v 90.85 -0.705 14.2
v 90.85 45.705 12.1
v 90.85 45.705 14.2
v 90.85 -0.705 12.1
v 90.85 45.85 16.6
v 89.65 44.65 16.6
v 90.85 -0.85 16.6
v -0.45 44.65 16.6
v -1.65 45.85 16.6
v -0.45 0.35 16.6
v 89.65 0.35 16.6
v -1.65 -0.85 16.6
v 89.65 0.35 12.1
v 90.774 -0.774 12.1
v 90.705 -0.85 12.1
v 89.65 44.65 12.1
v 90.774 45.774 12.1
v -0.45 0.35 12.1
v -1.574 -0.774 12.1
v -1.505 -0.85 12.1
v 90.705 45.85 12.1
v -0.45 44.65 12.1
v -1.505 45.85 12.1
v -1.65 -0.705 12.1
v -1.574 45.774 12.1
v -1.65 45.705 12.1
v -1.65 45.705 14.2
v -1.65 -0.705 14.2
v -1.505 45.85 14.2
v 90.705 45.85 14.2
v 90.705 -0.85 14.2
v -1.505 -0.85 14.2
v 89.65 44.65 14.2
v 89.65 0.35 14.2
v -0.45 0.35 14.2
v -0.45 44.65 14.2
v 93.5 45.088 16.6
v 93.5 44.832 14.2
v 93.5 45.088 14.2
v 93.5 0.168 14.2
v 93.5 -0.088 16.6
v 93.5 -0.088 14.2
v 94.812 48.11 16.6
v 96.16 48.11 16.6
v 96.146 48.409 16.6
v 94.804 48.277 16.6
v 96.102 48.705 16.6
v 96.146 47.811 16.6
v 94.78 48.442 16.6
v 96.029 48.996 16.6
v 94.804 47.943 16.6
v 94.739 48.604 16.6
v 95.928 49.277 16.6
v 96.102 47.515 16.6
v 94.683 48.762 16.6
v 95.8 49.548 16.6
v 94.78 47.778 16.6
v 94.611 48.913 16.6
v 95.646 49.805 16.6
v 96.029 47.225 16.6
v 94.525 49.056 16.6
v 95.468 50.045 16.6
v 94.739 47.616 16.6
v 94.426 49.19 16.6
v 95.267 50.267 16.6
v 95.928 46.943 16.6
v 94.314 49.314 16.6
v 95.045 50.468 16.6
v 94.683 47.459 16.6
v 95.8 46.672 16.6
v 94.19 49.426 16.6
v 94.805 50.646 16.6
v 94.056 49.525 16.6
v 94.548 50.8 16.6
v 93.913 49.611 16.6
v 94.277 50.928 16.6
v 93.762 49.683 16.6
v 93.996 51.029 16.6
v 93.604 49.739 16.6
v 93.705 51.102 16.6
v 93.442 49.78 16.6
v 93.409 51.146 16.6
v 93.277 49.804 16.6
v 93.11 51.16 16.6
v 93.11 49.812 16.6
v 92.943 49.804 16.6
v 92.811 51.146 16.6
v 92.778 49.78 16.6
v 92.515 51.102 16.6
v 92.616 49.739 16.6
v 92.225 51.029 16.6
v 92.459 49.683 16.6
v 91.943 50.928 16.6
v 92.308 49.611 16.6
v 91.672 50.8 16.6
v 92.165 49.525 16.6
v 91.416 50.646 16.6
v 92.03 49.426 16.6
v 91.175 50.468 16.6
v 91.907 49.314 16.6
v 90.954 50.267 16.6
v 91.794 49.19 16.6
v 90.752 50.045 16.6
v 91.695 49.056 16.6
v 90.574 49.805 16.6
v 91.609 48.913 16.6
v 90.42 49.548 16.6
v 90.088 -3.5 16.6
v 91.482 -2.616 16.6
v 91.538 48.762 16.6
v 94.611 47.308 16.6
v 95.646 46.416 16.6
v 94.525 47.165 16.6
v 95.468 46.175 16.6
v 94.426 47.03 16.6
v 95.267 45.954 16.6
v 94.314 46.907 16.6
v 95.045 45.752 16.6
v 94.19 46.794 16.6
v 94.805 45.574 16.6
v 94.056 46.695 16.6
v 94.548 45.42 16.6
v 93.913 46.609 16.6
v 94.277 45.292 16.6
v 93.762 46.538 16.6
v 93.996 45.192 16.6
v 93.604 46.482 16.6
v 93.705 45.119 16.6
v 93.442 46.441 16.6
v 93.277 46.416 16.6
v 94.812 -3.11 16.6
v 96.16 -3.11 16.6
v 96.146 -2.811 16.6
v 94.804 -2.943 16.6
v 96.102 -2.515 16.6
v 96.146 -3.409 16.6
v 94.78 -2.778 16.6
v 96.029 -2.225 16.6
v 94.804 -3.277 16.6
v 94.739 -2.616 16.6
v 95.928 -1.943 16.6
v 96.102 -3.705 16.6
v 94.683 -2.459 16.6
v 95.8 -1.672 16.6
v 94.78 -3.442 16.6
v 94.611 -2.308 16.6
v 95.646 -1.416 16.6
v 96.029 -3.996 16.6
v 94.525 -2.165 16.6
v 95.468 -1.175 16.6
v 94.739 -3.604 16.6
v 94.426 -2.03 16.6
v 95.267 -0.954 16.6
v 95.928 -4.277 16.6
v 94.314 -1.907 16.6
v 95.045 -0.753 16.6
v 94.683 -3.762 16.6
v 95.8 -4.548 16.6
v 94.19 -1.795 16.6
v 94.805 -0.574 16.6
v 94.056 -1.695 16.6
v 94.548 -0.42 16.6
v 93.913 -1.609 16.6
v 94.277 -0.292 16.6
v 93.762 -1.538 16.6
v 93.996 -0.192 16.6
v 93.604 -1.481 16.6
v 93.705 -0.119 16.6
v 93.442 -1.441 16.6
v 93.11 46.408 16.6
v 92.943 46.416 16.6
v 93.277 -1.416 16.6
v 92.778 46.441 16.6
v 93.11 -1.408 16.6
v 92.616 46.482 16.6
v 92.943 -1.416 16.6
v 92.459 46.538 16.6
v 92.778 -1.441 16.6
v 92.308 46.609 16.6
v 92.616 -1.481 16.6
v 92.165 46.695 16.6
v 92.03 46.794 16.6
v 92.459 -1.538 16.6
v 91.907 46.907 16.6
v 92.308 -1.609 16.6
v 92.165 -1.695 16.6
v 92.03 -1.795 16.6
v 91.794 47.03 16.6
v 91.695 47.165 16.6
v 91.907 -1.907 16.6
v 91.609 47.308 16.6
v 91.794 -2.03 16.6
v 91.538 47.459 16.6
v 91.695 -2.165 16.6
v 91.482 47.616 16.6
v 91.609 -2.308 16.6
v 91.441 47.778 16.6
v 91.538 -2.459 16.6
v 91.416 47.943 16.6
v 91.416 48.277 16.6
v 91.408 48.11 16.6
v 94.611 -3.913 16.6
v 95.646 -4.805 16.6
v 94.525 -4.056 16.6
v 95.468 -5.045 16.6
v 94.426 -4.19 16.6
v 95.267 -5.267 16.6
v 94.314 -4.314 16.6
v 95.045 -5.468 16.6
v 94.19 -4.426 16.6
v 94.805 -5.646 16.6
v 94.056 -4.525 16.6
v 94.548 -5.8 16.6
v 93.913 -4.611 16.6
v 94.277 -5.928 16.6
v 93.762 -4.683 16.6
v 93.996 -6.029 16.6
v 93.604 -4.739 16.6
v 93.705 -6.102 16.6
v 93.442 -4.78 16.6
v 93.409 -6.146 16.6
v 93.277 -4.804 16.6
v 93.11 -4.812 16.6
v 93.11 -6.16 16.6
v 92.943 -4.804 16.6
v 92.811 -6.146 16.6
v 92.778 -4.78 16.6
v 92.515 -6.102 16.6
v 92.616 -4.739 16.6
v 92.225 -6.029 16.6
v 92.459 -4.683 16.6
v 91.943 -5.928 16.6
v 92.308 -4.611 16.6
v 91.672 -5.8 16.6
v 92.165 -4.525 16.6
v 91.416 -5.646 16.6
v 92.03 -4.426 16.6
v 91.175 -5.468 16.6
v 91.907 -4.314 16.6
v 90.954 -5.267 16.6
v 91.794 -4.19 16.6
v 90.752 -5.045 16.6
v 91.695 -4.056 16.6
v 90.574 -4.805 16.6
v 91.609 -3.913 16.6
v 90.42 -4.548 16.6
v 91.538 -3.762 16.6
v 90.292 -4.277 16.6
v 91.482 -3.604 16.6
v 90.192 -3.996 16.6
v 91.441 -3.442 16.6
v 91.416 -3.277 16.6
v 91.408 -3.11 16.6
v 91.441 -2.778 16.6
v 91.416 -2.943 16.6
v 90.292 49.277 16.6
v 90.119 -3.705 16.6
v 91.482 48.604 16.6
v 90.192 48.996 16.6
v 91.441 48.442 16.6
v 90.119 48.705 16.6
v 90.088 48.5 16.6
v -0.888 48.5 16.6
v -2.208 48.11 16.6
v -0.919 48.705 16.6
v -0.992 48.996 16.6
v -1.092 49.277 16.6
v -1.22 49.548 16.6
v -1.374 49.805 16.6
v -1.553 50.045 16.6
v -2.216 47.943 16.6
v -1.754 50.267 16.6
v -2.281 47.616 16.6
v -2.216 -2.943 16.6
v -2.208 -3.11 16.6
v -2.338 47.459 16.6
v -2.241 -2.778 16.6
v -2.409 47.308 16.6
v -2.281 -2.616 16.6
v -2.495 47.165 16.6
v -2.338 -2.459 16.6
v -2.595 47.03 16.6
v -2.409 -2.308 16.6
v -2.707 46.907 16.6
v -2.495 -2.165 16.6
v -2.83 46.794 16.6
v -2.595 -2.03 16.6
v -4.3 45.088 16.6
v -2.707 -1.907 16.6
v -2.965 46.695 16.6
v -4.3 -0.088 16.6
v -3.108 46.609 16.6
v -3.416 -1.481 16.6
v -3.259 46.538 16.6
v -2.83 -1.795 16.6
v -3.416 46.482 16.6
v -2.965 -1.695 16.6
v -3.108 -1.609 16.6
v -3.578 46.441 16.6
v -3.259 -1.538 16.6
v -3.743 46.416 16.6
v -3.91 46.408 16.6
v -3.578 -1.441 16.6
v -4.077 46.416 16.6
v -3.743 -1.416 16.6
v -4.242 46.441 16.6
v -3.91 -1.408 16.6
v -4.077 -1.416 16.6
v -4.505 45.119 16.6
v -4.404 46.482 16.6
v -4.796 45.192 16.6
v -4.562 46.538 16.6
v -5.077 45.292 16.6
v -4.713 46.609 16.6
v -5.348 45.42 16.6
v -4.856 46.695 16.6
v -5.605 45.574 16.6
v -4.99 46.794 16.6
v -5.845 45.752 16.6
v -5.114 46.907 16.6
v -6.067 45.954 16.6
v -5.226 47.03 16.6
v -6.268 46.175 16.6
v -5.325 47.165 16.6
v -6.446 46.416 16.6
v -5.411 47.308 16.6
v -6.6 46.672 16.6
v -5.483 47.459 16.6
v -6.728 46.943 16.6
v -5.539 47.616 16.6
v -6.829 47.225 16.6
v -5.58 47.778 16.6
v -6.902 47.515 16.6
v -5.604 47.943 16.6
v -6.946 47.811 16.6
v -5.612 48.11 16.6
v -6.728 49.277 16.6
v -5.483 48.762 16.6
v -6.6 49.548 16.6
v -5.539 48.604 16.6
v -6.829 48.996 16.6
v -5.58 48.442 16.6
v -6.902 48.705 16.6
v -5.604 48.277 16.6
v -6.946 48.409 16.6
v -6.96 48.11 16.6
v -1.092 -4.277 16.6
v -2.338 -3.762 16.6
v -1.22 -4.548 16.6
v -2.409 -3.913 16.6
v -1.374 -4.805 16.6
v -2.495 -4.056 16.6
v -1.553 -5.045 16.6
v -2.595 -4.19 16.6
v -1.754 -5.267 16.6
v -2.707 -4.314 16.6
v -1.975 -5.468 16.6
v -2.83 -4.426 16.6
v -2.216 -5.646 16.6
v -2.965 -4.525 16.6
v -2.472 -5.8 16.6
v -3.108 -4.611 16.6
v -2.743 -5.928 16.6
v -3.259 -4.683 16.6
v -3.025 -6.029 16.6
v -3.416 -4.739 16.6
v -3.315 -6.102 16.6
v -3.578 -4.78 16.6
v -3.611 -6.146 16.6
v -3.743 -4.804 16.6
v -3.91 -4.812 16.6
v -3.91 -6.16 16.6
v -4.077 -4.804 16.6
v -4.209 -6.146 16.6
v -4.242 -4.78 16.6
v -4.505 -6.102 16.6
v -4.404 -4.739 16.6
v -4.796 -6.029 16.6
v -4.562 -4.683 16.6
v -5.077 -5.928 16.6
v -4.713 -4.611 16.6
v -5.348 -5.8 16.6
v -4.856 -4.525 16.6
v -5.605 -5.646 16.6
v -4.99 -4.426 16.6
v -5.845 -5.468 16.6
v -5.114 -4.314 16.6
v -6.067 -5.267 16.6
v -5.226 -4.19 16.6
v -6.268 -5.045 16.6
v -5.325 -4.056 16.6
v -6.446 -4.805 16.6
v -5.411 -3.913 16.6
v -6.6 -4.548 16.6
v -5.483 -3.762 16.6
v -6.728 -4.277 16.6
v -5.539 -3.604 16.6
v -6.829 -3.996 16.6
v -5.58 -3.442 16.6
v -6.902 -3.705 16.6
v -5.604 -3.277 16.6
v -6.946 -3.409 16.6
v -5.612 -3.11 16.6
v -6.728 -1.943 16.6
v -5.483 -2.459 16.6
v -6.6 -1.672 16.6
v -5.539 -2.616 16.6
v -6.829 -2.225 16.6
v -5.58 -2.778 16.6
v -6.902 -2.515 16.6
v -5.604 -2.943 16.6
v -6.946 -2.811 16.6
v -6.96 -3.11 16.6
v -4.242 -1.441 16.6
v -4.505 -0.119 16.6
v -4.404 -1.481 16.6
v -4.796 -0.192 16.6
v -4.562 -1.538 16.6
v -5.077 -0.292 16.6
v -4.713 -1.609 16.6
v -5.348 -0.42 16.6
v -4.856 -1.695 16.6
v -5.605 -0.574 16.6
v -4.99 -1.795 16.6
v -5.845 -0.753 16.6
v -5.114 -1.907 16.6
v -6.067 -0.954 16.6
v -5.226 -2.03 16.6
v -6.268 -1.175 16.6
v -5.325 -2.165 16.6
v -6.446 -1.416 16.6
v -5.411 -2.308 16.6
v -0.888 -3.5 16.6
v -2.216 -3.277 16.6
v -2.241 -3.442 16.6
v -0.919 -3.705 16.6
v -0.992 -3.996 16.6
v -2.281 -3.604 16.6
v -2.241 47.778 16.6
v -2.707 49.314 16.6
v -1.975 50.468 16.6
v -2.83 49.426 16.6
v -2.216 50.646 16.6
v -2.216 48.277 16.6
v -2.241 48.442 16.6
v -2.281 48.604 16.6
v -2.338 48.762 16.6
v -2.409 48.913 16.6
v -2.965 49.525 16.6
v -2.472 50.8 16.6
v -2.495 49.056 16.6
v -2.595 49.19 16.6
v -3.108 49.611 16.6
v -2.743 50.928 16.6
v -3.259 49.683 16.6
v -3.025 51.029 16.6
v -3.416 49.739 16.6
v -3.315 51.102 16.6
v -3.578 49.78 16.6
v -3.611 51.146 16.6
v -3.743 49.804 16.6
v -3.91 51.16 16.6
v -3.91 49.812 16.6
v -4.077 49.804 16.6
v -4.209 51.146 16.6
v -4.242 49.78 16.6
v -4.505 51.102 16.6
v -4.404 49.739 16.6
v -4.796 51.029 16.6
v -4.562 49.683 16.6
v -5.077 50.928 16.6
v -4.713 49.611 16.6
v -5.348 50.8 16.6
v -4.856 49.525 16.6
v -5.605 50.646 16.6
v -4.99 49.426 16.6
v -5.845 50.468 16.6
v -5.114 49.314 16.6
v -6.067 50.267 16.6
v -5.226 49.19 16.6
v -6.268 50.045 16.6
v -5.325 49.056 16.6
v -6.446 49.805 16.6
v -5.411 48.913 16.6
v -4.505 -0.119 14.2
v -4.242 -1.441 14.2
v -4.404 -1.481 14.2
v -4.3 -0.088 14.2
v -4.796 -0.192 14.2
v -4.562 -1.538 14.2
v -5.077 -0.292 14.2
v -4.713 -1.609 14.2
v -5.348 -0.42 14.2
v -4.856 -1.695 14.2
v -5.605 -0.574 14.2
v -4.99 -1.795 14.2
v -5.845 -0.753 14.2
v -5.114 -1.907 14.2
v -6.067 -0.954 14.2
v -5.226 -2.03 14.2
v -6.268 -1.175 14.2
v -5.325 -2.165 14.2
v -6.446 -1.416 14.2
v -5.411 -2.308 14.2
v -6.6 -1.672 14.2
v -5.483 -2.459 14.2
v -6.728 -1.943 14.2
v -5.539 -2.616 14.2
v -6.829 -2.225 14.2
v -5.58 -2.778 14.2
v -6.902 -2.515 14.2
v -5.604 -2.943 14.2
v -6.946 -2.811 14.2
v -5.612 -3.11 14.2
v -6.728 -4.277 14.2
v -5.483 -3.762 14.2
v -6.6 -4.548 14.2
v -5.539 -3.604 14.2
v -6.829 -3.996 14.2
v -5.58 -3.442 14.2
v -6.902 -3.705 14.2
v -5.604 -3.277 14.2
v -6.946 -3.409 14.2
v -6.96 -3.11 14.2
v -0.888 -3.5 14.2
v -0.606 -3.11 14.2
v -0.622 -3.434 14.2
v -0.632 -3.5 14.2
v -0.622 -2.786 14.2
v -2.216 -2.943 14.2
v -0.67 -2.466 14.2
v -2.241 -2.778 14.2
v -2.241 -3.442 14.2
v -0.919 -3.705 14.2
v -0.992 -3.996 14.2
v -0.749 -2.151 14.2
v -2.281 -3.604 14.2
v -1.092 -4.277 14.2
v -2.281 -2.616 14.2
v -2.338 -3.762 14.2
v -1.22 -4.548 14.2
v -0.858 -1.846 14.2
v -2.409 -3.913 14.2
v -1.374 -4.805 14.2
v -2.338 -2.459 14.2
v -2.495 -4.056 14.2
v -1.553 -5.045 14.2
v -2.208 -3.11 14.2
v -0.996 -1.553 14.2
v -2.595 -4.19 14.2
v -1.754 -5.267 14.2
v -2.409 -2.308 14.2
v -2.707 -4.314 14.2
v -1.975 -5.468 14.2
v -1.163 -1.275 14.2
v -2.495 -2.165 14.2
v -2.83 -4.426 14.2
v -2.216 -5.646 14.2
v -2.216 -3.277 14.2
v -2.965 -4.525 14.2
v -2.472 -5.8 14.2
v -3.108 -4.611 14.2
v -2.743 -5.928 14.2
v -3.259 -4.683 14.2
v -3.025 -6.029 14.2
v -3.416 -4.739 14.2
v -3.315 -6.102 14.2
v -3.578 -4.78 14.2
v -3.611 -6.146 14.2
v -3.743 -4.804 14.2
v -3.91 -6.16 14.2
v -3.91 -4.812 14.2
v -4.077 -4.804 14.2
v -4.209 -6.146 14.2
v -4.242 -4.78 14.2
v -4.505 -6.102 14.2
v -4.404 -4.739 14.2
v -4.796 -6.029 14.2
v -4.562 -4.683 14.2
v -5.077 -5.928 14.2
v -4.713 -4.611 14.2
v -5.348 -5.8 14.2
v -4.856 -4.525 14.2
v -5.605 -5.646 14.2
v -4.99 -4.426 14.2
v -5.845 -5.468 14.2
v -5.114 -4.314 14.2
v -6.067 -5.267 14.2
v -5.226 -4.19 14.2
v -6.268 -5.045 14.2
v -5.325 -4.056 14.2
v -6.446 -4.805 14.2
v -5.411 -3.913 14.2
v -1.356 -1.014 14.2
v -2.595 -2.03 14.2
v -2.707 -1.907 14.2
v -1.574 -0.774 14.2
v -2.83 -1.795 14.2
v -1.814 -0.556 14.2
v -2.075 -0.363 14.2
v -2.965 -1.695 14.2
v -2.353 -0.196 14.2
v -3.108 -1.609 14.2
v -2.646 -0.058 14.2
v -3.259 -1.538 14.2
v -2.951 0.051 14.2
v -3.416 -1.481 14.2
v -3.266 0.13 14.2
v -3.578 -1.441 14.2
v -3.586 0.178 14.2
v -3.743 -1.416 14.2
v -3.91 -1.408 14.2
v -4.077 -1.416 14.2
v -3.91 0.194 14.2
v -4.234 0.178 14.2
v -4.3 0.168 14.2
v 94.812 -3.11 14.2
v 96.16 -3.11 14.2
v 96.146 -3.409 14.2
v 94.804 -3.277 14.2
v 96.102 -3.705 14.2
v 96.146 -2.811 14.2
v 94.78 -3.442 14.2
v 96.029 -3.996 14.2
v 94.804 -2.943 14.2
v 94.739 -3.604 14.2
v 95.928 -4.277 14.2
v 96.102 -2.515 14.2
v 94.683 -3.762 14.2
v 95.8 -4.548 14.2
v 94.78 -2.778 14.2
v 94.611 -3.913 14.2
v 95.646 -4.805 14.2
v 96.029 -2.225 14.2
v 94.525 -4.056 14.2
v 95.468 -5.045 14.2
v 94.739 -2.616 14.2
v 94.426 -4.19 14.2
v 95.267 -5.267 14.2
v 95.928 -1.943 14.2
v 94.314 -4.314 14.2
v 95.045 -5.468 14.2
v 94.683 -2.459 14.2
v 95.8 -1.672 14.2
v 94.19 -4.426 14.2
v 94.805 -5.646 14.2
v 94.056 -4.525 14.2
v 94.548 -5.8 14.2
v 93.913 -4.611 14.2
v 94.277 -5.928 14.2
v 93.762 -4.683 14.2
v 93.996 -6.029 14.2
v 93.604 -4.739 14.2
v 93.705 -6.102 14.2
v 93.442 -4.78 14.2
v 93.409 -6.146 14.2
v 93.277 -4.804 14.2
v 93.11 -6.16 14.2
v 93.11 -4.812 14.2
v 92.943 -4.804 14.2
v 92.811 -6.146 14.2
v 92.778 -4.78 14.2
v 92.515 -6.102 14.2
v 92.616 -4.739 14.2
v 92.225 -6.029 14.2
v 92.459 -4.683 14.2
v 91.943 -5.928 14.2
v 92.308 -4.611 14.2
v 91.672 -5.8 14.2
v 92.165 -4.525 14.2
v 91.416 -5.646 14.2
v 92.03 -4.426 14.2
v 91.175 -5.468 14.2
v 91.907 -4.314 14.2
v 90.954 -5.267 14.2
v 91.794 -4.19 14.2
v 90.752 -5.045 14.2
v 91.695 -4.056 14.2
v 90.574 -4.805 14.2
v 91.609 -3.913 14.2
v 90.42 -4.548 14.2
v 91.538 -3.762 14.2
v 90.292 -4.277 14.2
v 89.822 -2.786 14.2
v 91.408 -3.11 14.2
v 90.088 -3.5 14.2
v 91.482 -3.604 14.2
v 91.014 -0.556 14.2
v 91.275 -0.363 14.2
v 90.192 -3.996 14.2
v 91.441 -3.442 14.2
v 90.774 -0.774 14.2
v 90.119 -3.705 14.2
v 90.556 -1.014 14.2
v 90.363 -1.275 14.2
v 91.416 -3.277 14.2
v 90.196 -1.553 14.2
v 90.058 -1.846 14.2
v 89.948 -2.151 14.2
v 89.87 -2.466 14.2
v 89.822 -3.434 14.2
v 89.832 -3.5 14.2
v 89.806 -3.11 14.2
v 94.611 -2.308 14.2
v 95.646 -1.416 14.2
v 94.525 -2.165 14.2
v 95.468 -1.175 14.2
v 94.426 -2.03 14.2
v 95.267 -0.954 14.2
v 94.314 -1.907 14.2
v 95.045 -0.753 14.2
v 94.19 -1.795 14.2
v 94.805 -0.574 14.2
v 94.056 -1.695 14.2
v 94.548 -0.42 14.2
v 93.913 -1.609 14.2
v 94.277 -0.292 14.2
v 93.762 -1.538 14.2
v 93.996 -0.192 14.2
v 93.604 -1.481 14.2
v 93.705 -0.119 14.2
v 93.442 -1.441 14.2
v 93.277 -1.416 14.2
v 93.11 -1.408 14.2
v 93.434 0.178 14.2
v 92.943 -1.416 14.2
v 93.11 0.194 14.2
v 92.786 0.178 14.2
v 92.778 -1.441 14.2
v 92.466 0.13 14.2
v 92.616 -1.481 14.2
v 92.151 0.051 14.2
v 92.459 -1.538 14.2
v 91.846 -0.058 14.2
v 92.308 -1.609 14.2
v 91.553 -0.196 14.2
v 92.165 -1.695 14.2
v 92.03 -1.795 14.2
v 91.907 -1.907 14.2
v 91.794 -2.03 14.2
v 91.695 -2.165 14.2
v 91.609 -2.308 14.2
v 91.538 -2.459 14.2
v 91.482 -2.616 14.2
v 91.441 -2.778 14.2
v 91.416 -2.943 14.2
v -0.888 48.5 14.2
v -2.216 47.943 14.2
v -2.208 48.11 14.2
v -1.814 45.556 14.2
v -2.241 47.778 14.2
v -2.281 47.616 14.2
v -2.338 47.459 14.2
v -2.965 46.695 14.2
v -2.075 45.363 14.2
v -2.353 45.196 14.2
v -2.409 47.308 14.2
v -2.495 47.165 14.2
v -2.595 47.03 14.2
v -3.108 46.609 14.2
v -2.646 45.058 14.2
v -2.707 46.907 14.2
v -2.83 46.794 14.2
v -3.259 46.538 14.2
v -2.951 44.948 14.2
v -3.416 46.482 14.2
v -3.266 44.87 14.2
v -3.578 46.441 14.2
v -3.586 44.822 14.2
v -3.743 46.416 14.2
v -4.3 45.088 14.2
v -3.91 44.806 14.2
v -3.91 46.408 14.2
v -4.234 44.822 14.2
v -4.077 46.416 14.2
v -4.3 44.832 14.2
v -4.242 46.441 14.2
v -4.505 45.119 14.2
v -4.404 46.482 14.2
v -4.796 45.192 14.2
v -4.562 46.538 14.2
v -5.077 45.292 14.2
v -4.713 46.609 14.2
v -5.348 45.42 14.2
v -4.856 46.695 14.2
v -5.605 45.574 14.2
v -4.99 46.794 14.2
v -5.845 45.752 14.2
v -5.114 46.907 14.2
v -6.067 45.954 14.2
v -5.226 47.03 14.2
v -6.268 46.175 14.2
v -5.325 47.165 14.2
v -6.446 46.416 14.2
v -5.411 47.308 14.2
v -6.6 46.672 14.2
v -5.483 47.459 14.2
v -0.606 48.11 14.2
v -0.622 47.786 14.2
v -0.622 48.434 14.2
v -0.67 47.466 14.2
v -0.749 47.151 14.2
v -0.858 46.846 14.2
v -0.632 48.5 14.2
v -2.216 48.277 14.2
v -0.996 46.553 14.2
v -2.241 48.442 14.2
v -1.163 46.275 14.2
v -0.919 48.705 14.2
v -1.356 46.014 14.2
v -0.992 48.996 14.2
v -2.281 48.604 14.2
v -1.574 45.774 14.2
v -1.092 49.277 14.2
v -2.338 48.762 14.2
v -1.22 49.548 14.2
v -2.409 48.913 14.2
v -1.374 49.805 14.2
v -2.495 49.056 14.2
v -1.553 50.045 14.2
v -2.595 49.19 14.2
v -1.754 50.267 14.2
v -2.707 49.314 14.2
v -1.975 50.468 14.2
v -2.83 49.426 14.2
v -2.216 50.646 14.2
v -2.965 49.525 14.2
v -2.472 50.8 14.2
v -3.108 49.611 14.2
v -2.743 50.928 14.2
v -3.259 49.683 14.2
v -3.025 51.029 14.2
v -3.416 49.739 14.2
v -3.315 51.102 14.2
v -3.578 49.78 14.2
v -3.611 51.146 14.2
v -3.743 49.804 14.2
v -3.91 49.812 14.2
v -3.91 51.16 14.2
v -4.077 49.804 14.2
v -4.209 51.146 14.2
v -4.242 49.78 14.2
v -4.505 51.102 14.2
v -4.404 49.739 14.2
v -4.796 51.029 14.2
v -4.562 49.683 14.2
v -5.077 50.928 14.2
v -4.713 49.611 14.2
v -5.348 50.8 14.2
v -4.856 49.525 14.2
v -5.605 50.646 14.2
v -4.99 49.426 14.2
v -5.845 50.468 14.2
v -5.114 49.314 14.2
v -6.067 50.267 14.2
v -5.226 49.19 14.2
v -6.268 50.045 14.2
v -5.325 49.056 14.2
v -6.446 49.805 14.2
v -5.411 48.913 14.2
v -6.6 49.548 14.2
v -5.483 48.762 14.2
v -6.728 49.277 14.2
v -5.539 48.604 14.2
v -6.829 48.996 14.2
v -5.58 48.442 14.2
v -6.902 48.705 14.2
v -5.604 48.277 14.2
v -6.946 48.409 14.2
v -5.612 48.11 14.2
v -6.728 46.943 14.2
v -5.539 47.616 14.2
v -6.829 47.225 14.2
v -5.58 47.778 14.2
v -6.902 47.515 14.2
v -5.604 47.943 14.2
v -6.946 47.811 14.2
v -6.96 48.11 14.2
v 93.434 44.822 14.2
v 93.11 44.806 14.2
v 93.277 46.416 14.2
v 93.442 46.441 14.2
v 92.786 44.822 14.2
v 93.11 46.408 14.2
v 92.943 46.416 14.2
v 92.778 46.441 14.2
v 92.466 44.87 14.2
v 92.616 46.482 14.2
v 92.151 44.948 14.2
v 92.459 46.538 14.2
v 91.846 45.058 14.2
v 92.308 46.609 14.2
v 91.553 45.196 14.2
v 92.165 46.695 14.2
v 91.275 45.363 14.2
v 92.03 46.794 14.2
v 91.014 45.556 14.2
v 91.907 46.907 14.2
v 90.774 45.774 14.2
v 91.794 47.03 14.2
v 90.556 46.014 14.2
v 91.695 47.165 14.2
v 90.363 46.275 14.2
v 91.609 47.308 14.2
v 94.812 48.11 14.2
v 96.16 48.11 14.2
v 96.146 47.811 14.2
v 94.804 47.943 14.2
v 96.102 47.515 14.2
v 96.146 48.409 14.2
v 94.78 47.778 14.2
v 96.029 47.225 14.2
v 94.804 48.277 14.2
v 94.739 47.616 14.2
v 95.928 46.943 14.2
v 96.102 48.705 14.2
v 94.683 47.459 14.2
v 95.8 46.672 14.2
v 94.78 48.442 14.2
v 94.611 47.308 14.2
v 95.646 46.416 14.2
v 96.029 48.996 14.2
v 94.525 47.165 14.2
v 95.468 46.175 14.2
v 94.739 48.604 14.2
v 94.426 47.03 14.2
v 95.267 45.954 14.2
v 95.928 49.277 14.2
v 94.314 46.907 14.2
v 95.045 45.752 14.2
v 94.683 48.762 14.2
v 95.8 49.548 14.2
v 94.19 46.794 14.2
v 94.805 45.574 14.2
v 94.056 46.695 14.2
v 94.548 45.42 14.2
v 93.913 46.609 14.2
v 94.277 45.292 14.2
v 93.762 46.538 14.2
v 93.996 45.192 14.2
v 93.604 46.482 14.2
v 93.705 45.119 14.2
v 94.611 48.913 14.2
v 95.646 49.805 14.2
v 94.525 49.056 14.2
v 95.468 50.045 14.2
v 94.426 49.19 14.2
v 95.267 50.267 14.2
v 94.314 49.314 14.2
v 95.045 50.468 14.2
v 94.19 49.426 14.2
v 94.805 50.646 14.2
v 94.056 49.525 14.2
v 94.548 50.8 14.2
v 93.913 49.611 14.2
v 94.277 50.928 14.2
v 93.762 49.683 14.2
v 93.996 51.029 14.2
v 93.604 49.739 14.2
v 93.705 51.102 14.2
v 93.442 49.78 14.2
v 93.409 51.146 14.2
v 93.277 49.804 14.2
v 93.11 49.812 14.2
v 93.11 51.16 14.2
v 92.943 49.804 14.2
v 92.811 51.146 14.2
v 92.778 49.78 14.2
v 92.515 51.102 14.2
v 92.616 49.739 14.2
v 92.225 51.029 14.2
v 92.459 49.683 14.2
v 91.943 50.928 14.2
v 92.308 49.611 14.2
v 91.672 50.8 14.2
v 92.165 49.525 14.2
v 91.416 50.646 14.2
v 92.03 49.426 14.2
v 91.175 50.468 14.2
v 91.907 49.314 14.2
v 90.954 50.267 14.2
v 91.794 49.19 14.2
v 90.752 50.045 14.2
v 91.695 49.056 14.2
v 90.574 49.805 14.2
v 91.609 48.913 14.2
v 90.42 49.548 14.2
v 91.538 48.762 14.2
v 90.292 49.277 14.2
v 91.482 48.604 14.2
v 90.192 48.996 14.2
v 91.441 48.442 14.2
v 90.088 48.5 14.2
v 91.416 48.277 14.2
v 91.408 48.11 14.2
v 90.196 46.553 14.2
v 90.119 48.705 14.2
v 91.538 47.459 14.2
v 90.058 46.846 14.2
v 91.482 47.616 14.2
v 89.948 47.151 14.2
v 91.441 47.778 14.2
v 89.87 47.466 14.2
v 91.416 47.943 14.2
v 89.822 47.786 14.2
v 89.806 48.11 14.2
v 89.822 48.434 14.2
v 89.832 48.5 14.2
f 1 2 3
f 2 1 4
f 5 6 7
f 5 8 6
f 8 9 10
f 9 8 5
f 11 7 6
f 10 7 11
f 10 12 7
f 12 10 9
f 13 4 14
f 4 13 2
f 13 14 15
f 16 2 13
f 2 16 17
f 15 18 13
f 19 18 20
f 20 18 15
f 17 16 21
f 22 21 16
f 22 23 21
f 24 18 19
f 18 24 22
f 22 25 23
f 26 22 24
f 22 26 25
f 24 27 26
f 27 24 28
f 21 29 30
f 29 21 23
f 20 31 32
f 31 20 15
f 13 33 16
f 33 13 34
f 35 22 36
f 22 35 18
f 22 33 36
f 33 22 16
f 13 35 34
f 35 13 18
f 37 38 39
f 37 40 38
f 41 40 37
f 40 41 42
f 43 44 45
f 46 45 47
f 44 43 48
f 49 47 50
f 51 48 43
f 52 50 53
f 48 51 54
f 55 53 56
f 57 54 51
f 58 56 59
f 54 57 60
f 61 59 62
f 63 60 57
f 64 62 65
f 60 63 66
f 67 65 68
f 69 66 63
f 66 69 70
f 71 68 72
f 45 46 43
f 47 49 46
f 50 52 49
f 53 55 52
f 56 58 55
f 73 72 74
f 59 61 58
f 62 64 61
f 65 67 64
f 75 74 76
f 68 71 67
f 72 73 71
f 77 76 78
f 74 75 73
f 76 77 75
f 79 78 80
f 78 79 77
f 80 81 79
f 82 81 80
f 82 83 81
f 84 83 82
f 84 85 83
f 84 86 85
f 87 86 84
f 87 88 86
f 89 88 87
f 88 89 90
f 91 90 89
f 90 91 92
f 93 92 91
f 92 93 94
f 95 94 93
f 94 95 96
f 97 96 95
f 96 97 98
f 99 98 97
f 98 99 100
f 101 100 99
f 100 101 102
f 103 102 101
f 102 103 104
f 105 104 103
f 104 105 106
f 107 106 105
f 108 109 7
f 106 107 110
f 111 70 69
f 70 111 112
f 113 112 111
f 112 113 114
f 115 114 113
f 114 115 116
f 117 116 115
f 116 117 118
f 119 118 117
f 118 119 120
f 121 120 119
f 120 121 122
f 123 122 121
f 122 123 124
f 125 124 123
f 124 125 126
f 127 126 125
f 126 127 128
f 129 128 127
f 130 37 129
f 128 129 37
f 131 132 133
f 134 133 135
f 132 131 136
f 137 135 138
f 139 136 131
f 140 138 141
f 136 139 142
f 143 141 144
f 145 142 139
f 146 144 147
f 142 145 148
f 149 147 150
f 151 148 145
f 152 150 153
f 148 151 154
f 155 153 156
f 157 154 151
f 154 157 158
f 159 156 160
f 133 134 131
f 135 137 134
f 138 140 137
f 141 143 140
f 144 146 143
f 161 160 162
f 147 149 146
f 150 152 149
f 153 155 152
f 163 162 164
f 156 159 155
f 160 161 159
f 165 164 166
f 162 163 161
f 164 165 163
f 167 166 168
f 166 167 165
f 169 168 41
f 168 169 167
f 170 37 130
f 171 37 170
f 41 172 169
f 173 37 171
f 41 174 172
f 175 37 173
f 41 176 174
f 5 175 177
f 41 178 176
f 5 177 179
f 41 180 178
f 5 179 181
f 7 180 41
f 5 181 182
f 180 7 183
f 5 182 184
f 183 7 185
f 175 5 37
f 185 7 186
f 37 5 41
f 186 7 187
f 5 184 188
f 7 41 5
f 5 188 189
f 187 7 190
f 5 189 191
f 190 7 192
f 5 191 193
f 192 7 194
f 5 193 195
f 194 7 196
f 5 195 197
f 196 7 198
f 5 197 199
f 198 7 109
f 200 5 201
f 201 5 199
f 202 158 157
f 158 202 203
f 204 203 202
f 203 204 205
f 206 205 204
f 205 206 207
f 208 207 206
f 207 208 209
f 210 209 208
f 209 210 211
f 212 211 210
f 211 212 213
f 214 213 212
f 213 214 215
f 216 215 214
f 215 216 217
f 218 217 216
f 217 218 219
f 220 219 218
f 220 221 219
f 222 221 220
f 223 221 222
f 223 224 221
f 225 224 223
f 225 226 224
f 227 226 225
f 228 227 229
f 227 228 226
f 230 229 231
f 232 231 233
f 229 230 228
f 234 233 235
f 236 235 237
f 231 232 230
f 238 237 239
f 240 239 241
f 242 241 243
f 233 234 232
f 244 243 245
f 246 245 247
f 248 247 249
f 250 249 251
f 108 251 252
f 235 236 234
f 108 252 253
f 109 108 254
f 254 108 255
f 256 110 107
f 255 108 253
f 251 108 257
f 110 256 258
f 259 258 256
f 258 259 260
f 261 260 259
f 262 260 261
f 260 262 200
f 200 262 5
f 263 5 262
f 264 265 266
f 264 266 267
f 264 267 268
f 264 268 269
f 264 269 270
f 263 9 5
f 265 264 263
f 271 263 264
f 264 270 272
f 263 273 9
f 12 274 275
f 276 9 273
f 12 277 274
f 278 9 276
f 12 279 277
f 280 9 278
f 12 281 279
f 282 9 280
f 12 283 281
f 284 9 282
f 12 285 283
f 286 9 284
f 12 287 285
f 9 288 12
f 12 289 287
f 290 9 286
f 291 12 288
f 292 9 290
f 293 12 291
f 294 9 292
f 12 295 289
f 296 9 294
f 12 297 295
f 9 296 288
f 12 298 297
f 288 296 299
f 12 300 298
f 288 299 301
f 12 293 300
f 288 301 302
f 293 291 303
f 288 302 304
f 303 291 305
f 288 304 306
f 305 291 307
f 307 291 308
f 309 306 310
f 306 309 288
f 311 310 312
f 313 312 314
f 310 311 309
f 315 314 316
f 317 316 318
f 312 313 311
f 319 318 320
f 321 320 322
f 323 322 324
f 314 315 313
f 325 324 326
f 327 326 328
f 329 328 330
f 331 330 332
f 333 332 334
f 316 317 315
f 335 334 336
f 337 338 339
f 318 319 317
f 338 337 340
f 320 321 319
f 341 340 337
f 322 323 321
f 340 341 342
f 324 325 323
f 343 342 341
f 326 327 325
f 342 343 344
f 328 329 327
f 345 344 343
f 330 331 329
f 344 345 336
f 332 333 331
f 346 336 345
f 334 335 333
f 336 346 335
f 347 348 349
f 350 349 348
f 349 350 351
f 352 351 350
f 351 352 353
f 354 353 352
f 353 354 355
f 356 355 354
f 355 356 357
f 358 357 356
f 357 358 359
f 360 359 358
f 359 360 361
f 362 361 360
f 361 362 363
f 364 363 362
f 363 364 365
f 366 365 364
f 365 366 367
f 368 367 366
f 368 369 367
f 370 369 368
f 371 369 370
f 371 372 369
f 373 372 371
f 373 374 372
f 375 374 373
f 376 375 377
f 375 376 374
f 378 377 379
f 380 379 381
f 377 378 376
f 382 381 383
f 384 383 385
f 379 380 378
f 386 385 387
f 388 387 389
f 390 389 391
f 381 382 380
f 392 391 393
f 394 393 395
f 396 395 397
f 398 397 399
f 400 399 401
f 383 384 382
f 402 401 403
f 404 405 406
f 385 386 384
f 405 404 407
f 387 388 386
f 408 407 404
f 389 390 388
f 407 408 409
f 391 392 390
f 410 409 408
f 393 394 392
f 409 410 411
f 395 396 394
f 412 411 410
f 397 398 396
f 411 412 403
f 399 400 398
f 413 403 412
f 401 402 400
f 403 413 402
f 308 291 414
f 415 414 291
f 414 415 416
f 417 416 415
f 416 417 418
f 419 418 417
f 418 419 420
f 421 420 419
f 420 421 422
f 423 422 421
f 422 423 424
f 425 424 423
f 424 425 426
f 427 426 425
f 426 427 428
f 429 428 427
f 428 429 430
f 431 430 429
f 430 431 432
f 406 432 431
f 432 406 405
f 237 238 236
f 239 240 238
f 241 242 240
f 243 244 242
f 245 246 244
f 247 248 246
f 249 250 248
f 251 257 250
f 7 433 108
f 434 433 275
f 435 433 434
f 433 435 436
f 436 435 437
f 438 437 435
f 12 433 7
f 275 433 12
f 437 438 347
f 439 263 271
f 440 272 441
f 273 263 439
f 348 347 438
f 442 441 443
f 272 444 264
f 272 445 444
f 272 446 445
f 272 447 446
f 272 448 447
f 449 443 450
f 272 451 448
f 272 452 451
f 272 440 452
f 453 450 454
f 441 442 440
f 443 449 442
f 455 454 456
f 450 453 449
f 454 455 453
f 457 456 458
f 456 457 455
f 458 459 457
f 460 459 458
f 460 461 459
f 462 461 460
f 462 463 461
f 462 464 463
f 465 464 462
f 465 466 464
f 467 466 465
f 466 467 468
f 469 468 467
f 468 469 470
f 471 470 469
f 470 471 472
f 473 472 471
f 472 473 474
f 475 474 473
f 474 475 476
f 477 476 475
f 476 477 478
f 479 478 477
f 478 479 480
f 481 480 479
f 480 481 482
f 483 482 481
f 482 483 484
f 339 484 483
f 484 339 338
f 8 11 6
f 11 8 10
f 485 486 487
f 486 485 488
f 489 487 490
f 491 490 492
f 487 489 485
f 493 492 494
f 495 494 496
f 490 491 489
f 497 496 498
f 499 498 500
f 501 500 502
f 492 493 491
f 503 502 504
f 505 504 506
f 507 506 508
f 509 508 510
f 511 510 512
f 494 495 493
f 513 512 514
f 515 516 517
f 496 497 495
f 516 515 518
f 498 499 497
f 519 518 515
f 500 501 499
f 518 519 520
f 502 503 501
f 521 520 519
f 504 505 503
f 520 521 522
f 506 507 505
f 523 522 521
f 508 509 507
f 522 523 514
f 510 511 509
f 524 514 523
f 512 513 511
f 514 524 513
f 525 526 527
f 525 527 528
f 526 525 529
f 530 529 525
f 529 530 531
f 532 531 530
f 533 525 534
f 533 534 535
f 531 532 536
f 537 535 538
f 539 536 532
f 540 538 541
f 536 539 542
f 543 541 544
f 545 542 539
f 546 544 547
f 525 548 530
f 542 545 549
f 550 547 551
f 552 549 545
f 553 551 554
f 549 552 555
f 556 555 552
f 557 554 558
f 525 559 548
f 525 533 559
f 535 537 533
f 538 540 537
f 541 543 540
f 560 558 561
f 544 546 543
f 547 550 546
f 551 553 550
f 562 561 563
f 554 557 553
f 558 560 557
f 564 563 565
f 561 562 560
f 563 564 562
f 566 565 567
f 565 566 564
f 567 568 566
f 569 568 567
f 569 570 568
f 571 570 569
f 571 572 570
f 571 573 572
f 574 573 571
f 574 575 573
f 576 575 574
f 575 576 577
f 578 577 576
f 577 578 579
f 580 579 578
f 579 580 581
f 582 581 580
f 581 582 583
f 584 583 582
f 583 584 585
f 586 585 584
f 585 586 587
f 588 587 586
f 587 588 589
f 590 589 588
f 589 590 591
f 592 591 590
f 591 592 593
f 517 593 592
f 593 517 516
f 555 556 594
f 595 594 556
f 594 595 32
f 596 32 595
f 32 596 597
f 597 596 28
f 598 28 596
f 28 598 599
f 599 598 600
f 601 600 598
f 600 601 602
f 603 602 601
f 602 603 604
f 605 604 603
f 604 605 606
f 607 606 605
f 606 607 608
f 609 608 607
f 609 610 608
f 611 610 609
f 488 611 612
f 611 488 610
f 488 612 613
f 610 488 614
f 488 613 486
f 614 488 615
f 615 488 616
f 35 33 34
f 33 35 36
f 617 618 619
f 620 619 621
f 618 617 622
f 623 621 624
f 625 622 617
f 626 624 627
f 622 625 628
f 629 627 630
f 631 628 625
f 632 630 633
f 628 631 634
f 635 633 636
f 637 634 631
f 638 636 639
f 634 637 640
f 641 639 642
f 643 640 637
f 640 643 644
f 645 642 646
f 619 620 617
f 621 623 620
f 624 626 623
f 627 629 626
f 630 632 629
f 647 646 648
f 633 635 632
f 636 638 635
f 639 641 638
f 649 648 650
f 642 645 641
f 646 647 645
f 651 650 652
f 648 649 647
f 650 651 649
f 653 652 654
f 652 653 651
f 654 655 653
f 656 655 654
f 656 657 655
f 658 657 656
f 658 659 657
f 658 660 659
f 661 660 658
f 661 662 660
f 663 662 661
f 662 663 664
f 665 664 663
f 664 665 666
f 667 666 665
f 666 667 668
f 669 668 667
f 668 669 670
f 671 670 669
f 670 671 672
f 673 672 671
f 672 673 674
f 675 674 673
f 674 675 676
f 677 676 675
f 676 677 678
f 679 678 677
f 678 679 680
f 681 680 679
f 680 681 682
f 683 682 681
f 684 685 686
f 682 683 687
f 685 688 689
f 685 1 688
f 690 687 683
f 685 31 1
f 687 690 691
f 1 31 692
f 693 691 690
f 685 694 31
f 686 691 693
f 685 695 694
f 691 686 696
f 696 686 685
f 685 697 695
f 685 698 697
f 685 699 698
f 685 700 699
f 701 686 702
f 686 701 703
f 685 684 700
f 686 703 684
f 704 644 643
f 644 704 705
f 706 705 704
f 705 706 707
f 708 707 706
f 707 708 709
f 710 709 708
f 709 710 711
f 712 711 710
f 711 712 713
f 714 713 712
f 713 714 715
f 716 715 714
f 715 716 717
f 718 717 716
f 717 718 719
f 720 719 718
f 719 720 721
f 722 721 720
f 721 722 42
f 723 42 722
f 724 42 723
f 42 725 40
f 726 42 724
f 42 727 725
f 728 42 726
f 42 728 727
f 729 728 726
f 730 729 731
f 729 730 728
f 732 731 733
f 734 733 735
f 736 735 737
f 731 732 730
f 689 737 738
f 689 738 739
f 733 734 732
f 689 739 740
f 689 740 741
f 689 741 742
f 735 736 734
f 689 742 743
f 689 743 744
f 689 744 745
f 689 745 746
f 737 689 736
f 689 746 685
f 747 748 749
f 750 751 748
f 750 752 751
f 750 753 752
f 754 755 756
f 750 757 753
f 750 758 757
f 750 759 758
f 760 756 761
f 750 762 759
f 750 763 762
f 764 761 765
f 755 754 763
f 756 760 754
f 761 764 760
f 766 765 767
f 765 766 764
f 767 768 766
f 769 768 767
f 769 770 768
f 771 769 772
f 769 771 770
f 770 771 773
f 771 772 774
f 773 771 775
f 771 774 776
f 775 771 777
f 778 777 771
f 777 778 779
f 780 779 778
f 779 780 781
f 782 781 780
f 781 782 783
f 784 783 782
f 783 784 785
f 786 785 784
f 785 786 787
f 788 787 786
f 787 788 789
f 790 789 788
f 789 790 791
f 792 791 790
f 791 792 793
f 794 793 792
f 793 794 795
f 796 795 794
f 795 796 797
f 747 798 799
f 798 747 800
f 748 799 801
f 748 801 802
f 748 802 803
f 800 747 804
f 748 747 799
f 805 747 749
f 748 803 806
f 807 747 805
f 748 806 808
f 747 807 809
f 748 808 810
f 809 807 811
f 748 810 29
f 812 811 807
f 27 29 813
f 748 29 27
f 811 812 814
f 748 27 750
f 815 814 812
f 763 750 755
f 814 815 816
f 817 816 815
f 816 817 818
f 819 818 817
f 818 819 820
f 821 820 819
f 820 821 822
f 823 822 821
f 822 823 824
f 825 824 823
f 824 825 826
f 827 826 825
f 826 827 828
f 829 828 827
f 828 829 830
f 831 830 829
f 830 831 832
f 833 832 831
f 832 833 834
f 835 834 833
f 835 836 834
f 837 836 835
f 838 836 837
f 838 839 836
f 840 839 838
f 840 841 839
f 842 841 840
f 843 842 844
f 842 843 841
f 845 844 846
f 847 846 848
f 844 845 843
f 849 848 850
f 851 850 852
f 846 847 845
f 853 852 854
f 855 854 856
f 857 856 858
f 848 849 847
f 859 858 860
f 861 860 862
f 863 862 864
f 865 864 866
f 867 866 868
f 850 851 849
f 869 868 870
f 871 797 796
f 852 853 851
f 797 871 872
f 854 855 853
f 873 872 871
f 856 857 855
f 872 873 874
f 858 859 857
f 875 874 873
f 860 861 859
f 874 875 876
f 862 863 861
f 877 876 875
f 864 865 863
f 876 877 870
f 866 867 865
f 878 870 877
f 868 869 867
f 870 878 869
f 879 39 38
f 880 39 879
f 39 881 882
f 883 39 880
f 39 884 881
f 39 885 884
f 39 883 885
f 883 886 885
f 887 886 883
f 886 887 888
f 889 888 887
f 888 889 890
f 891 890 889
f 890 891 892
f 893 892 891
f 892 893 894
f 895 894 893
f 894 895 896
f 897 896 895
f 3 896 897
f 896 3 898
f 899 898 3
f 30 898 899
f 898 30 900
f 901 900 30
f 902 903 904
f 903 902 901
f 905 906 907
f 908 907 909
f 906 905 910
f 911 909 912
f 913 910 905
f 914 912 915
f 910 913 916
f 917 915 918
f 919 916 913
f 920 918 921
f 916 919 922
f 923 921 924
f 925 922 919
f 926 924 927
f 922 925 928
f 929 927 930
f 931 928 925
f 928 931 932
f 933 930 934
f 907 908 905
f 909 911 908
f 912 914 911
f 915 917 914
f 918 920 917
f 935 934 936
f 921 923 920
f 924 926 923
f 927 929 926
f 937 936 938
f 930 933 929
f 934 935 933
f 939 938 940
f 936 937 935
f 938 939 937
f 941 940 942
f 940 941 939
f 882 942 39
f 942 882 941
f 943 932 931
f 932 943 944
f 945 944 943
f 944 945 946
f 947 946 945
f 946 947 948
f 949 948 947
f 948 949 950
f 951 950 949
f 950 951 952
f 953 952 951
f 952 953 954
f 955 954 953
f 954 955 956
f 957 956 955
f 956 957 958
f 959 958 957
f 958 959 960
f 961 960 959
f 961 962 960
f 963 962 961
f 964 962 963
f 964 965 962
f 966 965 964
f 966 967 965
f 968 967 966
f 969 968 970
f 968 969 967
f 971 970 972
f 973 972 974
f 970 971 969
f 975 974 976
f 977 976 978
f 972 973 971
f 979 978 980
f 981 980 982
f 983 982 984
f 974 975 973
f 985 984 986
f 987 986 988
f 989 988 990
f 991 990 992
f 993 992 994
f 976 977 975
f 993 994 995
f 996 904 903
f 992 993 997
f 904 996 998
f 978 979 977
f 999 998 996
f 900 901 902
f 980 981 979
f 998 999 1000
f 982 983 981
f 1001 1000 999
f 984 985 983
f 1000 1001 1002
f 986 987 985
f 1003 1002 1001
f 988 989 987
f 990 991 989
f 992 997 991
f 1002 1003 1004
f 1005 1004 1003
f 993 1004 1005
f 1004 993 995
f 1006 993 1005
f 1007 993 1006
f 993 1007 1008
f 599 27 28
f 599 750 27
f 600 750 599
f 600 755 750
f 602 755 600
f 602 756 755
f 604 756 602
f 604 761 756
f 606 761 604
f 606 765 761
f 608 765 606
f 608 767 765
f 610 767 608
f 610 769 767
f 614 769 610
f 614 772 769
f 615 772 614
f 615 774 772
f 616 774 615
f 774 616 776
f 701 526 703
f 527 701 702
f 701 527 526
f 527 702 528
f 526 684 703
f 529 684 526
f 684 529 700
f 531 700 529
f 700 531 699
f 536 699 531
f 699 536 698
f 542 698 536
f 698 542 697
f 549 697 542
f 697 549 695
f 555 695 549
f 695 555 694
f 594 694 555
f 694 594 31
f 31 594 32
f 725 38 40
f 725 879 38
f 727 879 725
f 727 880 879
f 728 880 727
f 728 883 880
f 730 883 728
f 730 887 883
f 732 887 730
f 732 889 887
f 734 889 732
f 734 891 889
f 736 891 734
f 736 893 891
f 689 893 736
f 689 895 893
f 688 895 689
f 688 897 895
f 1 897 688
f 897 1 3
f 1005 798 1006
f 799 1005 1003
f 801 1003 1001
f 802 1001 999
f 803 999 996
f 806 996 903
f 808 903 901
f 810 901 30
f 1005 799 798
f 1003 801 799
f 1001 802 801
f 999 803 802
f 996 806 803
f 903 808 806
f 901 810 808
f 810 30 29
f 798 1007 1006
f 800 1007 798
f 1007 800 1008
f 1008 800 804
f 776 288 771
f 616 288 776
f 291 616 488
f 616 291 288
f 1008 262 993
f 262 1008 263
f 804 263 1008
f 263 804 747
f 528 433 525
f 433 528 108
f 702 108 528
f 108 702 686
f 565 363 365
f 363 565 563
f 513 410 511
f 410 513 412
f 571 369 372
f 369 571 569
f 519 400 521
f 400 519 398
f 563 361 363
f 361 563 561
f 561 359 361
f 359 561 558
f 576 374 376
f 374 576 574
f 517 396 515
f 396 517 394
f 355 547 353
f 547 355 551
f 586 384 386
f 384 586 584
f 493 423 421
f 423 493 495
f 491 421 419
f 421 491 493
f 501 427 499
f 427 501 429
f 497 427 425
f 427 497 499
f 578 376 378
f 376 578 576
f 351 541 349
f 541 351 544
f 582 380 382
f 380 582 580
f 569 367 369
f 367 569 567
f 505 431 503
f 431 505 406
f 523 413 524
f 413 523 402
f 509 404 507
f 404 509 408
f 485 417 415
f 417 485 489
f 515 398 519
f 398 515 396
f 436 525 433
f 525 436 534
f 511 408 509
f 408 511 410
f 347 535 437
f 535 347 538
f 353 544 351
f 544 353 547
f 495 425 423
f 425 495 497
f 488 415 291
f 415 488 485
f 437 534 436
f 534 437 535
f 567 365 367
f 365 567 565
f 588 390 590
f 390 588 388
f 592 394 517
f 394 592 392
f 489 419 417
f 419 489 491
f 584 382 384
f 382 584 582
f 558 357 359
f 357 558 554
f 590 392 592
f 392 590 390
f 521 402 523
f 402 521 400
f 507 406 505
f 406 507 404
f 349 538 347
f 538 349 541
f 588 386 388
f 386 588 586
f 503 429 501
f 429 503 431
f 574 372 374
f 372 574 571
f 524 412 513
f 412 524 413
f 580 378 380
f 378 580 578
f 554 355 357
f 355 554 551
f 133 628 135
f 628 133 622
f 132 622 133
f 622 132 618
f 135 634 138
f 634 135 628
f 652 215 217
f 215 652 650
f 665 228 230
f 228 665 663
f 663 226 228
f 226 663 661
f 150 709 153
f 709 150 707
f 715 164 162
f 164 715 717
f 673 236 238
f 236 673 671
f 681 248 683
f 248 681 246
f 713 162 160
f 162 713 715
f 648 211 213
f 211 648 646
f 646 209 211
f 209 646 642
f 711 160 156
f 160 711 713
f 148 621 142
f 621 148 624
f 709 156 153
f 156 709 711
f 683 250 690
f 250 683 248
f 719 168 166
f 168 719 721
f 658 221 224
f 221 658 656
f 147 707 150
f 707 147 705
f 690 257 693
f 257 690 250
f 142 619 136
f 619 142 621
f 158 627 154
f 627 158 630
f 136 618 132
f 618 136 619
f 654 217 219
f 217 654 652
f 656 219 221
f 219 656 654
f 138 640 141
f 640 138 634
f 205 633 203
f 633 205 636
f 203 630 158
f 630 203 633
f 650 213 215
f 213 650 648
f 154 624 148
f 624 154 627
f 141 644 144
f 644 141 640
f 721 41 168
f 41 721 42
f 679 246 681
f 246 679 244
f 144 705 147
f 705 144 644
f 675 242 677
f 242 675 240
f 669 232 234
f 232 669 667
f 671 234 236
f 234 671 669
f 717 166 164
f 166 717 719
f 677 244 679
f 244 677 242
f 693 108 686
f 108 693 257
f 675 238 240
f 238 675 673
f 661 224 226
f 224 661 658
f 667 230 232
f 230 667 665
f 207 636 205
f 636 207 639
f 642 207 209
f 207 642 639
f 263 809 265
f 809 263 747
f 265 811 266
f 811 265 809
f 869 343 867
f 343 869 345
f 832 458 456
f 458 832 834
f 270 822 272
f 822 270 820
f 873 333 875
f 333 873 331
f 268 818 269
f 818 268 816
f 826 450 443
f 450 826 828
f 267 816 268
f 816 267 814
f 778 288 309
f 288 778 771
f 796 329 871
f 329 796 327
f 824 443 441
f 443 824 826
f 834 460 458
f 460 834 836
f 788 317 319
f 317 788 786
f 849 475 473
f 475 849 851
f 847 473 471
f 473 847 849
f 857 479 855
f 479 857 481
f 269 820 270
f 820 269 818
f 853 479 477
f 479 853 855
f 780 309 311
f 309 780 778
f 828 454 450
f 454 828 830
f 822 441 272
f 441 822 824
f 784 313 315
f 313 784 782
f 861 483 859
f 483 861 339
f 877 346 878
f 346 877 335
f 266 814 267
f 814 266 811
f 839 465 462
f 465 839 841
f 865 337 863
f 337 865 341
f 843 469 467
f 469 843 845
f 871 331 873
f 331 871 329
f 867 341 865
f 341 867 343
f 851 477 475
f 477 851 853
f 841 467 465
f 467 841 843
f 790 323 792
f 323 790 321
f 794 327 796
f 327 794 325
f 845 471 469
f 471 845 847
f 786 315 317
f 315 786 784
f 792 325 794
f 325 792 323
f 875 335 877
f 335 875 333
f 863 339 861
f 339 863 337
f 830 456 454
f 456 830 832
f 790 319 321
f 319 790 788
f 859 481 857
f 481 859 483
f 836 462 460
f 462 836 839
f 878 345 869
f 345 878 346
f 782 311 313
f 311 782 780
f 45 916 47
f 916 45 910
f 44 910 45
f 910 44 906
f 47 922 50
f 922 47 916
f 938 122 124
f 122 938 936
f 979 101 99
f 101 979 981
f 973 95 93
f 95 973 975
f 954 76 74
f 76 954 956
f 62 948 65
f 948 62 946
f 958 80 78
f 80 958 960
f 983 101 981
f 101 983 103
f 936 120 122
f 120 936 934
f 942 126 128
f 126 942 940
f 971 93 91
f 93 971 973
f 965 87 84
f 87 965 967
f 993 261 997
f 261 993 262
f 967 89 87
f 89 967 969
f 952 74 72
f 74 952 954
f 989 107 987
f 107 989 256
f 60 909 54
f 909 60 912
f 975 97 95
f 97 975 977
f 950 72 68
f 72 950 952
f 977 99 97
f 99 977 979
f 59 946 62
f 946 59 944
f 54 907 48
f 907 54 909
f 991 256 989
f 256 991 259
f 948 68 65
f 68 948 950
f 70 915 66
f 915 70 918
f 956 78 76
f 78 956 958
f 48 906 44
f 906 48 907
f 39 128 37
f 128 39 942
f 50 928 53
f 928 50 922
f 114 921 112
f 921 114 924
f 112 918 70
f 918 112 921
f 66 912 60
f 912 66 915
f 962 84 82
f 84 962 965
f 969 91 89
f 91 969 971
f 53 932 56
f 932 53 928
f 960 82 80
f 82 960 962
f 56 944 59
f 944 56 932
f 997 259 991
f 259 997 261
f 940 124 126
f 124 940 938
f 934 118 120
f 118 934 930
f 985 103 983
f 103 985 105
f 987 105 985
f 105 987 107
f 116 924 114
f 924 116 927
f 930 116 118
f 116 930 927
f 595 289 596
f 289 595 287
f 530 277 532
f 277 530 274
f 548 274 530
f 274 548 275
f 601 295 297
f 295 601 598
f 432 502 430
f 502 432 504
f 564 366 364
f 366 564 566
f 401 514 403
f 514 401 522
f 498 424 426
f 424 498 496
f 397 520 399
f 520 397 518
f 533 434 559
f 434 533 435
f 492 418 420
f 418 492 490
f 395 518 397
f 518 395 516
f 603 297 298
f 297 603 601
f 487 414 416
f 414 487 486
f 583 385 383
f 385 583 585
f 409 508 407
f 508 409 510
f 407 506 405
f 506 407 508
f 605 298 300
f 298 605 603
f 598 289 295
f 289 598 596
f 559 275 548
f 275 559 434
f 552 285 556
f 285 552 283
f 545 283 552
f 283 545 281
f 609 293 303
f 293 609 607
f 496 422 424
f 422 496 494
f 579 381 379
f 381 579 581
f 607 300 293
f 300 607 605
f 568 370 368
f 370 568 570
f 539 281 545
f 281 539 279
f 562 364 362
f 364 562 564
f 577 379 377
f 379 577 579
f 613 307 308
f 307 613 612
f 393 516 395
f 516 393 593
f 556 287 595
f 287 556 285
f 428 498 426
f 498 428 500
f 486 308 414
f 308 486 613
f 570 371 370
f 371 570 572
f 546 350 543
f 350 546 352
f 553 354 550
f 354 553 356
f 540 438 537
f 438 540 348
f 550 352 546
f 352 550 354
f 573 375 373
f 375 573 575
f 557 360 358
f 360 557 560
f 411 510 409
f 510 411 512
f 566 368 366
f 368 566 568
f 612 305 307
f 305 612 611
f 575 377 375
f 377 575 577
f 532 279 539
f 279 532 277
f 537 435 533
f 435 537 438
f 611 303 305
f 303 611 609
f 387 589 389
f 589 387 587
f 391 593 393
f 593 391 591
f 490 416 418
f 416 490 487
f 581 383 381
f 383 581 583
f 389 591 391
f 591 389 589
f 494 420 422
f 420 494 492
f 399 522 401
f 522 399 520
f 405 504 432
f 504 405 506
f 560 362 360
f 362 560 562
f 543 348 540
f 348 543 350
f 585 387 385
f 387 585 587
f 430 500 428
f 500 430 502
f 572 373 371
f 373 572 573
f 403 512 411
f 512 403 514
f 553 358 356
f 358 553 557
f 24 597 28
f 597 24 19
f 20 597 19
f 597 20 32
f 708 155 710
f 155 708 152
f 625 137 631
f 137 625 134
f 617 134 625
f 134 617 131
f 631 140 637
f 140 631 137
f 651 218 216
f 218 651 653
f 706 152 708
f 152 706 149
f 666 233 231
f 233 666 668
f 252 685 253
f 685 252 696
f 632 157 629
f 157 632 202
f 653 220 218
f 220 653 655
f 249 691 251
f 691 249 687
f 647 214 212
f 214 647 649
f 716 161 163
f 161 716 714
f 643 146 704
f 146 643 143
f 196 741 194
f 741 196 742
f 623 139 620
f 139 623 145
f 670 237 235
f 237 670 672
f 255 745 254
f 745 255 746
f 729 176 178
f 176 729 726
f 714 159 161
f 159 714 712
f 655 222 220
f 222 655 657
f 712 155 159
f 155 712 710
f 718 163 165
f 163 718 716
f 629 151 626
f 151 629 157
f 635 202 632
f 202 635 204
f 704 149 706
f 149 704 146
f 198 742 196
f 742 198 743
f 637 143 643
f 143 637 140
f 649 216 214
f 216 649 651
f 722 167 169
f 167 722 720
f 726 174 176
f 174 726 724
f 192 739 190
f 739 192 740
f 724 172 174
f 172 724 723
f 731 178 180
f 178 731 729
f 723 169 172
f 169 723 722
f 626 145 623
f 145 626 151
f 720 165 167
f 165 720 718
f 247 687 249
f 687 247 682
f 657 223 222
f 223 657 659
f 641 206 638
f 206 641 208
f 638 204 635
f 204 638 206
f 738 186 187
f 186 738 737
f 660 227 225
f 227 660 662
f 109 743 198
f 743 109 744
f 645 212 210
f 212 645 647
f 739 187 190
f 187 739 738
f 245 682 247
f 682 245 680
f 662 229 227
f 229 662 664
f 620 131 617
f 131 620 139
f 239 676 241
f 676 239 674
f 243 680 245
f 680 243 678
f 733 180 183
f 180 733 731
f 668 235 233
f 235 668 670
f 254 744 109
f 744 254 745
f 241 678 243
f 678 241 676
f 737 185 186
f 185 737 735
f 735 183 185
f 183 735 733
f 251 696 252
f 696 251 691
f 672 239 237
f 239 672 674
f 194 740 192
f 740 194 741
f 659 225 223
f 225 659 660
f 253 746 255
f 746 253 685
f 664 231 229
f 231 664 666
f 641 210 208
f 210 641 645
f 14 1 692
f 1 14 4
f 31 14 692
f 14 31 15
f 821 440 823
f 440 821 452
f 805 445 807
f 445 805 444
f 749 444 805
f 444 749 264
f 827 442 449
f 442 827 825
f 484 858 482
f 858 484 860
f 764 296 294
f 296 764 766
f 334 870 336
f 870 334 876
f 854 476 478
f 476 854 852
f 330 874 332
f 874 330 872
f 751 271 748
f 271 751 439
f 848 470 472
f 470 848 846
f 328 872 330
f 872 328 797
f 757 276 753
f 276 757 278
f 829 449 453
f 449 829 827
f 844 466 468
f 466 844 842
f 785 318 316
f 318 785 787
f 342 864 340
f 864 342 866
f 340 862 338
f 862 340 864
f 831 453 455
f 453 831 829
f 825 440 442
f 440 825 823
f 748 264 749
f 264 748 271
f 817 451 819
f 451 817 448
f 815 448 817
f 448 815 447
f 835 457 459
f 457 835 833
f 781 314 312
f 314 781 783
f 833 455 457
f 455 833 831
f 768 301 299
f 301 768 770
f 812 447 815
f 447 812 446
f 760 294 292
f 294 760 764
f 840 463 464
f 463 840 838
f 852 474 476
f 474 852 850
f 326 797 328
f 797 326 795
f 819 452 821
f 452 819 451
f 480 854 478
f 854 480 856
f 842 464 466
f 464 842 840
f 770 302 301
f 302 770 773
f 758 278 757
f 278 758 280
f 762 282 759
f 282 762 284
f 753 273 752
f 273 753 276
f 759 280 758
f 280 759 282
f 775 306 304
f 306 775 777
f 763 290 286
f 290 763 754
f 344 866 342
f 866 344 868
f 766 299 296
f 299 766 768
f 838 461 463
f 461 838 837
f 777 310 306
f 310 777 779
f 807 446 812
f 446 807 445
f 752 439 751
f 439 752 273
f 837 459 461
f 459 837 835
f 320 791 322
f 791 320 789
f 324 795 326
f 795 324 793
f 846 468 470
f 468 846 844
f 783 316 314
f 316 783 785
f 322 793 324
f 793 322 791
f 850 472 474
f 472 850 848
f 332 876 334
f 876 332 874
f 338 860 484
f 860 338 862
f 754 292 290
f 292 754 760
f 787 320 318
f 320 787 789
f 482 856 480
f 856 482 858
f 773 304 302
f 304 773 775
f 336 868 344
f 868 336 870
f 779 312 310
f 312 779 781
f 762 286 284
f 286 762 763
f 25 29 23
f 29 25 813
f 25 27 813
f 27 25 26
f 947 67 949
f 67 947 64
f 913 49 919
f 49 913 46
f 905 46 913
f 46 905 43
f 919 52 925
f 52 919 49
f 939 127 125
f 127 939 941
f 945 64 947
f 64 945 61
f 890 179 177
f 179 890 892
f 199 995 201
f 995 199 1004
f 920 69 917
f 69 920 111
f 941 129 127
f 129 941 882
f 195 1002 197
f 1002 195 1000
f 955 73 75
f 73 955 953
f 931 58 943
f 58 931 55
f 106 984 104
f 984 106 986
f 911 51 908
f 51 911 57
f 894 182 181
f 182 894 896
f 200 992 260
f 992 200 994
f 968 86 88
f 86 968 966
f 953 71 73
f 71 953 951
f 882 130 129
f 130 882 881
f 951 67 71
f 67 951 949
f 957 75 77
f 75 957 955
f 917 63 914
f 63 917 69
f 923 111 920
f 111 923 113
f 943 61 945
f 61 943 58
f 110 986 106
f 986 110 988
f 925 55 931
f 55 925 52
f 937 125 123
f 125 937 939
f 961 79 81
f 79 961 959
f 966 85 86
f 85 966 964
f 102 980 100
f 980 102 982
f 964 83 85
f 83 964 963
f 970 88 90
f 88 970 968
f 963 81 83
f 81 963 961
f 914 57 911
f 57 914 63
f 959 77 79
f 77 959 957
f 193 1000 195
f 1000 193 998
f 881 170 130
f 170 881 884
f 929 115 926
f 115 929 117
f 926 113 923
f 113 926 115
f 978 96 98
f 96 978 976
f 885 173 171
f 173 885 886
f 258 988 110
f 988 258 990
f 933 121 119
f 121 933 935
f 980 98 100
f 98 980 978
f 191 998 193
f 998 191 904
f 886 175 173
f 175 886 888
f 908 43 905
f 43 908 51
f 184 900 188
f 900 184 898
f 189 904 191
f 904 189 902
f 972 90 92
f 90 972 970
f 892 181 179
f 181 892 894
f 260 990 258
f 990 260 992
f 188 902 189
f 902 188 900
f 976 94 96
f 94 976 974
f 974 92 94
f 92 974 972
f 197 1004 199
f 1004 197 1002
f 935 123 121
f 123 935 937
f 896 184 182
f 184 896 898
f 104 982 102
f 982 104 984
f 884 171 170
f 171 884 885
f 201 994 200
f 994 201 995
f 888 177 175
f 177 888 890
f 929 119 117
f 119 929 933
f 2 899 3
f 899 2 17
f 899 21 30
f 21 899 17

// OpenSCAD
// body lid
difference() {
  union() {
    // body lid (lid_plate)
    multmatrix([[1, 0, 0, 44.6], [0, 1, 0, 22.5], [0, 0, 1, 14.2], [0, 0, 0, 1]]) translate([-48.9, -26, 0]) cube([97.8, 52, 2.4]);
    // add lid_lip (lip)
    multmatrix([[1, 0, 0, 44.6], [0, 1, 0, 22.5], [0, 0, 1, 12.1], [0, 0, 0, 1]]) difference() { translate([-46.25, -23.35, 0]) cube([92.5, 46.7, 4.5]); translate([0, 0, -1]) translate([-45.05, -22.15, 0]) cube([90.1, 44.3, 6.5]); }
    // add boss_1_pad (pad)
    multmatrix([[1, 0, 0, -3.910229], [0, 1, 0, -3.110229], [0, 0, 1, 14.2], [0, 0, 0, 1]]) cylinder(h=2.4, d=6.1, $fn=64);
    // add boss_2_pad (pad)
    multmatrix([[1, 0, 0, 93.110229], [0, 1, 0, -3.110229], [0, 0, 1, 14.2], [0, 0, 0, 1]]) cylinder(h=2.4, d=6.1, $fn=64);
    // add boss_3_pad (pad)
    multmatrix([[1, 0, 0, -3.910229], [0, 1, 0, 48.110229], [0, 0, 1, 14.2], [0, 0, 0, 1]]) cylinder(h=2.4, d=6.1, $fn=64);
    // add boss_4_pad (pad)
    multmatrix([[1, 0, 0, 93.110229], [0, 1, 0, 48.110229], [0, 0, 1, 14.2], [0, 0, 0, 1]]) cylinder(h=2.4, d=6.1, $fn=64);
  }
  // cut boss_1_lid_hole (screw_hole)
  multmatrix([[1, 0, 0, -3.910229], [0, 1, 0, -3.110229], [0, 0, 1, 13.2], [0, 0, 0, 1]]) cylinder(h=4.4, d=3.4041, $fn=64);
  // cut boss_1_lip_notch (lip_notch)
  multmatrix([[1, 0, 0, -3.910229], [0, 1, 0, -3.110229], [0, 0, 1, 11.1], [0, 0, 0, 1]]) cylinder(h=3.1, d=6.60796, $fn=64);
  // cut boss_2_lid_hole (screw_hole)
  multmatrix([[1, 0, 0, 93.110229], [0, 1, 0, -3.110229], [0, 0, 1, 13.2], [0, 0, 0, 1]]) cylinder(h=4.4, d=3.4041, $fn=64);
  // cut boss_2_lip_notch (lip_notch)
  multmatrix([[1, 0, 0, 93.110229], [0, 1, 0, -3.110229], [0, 0, 1, 11.1], [0, 0, 0, 1]]) cylinder(h=3.1, d=6.60796, $fn=64);
  // cut boss_3_lid_hole (screw_hole)
  multmatrix([[1, 0, 0, -3.910229], [0, 1, 0, 48.110229], [0, 0, 1, 13.2], [0, 0, 0, 1]]) cylinder(h=4.4, d=3.4041, $fn=64);
  // cut boss_3_lip_notch (lip_notch)
  multmatrix([[1, 0, 0, -3.910229], [0, 1, 0, 48.110229], [0, 0, 1, 11.1], [0, 0, 0, 1]]) cylinder(h=3.1, d=6.60796, $fn=64);
  // cut boss_4_lid_hole (screw_hole)
  multmatrix([[1, 0, 0, 93.110229], [0, 1, 0, 48.110229], [0, 0, 1, 13.2], [0, 0, 0, 1]]) cylinder(h=4.4, d=3.4041, $fn=64);
  // cut boss_4_lip_notch (lip_notch)
  multmatrix([[1, 0, 0, 93.110229], [0, 1, 0, 48.110229], [0, 0, 1, 11.1], [0, 0, 0, 1]]) cylinder(h=3.1, d=6.60796, $fn=64);
}
